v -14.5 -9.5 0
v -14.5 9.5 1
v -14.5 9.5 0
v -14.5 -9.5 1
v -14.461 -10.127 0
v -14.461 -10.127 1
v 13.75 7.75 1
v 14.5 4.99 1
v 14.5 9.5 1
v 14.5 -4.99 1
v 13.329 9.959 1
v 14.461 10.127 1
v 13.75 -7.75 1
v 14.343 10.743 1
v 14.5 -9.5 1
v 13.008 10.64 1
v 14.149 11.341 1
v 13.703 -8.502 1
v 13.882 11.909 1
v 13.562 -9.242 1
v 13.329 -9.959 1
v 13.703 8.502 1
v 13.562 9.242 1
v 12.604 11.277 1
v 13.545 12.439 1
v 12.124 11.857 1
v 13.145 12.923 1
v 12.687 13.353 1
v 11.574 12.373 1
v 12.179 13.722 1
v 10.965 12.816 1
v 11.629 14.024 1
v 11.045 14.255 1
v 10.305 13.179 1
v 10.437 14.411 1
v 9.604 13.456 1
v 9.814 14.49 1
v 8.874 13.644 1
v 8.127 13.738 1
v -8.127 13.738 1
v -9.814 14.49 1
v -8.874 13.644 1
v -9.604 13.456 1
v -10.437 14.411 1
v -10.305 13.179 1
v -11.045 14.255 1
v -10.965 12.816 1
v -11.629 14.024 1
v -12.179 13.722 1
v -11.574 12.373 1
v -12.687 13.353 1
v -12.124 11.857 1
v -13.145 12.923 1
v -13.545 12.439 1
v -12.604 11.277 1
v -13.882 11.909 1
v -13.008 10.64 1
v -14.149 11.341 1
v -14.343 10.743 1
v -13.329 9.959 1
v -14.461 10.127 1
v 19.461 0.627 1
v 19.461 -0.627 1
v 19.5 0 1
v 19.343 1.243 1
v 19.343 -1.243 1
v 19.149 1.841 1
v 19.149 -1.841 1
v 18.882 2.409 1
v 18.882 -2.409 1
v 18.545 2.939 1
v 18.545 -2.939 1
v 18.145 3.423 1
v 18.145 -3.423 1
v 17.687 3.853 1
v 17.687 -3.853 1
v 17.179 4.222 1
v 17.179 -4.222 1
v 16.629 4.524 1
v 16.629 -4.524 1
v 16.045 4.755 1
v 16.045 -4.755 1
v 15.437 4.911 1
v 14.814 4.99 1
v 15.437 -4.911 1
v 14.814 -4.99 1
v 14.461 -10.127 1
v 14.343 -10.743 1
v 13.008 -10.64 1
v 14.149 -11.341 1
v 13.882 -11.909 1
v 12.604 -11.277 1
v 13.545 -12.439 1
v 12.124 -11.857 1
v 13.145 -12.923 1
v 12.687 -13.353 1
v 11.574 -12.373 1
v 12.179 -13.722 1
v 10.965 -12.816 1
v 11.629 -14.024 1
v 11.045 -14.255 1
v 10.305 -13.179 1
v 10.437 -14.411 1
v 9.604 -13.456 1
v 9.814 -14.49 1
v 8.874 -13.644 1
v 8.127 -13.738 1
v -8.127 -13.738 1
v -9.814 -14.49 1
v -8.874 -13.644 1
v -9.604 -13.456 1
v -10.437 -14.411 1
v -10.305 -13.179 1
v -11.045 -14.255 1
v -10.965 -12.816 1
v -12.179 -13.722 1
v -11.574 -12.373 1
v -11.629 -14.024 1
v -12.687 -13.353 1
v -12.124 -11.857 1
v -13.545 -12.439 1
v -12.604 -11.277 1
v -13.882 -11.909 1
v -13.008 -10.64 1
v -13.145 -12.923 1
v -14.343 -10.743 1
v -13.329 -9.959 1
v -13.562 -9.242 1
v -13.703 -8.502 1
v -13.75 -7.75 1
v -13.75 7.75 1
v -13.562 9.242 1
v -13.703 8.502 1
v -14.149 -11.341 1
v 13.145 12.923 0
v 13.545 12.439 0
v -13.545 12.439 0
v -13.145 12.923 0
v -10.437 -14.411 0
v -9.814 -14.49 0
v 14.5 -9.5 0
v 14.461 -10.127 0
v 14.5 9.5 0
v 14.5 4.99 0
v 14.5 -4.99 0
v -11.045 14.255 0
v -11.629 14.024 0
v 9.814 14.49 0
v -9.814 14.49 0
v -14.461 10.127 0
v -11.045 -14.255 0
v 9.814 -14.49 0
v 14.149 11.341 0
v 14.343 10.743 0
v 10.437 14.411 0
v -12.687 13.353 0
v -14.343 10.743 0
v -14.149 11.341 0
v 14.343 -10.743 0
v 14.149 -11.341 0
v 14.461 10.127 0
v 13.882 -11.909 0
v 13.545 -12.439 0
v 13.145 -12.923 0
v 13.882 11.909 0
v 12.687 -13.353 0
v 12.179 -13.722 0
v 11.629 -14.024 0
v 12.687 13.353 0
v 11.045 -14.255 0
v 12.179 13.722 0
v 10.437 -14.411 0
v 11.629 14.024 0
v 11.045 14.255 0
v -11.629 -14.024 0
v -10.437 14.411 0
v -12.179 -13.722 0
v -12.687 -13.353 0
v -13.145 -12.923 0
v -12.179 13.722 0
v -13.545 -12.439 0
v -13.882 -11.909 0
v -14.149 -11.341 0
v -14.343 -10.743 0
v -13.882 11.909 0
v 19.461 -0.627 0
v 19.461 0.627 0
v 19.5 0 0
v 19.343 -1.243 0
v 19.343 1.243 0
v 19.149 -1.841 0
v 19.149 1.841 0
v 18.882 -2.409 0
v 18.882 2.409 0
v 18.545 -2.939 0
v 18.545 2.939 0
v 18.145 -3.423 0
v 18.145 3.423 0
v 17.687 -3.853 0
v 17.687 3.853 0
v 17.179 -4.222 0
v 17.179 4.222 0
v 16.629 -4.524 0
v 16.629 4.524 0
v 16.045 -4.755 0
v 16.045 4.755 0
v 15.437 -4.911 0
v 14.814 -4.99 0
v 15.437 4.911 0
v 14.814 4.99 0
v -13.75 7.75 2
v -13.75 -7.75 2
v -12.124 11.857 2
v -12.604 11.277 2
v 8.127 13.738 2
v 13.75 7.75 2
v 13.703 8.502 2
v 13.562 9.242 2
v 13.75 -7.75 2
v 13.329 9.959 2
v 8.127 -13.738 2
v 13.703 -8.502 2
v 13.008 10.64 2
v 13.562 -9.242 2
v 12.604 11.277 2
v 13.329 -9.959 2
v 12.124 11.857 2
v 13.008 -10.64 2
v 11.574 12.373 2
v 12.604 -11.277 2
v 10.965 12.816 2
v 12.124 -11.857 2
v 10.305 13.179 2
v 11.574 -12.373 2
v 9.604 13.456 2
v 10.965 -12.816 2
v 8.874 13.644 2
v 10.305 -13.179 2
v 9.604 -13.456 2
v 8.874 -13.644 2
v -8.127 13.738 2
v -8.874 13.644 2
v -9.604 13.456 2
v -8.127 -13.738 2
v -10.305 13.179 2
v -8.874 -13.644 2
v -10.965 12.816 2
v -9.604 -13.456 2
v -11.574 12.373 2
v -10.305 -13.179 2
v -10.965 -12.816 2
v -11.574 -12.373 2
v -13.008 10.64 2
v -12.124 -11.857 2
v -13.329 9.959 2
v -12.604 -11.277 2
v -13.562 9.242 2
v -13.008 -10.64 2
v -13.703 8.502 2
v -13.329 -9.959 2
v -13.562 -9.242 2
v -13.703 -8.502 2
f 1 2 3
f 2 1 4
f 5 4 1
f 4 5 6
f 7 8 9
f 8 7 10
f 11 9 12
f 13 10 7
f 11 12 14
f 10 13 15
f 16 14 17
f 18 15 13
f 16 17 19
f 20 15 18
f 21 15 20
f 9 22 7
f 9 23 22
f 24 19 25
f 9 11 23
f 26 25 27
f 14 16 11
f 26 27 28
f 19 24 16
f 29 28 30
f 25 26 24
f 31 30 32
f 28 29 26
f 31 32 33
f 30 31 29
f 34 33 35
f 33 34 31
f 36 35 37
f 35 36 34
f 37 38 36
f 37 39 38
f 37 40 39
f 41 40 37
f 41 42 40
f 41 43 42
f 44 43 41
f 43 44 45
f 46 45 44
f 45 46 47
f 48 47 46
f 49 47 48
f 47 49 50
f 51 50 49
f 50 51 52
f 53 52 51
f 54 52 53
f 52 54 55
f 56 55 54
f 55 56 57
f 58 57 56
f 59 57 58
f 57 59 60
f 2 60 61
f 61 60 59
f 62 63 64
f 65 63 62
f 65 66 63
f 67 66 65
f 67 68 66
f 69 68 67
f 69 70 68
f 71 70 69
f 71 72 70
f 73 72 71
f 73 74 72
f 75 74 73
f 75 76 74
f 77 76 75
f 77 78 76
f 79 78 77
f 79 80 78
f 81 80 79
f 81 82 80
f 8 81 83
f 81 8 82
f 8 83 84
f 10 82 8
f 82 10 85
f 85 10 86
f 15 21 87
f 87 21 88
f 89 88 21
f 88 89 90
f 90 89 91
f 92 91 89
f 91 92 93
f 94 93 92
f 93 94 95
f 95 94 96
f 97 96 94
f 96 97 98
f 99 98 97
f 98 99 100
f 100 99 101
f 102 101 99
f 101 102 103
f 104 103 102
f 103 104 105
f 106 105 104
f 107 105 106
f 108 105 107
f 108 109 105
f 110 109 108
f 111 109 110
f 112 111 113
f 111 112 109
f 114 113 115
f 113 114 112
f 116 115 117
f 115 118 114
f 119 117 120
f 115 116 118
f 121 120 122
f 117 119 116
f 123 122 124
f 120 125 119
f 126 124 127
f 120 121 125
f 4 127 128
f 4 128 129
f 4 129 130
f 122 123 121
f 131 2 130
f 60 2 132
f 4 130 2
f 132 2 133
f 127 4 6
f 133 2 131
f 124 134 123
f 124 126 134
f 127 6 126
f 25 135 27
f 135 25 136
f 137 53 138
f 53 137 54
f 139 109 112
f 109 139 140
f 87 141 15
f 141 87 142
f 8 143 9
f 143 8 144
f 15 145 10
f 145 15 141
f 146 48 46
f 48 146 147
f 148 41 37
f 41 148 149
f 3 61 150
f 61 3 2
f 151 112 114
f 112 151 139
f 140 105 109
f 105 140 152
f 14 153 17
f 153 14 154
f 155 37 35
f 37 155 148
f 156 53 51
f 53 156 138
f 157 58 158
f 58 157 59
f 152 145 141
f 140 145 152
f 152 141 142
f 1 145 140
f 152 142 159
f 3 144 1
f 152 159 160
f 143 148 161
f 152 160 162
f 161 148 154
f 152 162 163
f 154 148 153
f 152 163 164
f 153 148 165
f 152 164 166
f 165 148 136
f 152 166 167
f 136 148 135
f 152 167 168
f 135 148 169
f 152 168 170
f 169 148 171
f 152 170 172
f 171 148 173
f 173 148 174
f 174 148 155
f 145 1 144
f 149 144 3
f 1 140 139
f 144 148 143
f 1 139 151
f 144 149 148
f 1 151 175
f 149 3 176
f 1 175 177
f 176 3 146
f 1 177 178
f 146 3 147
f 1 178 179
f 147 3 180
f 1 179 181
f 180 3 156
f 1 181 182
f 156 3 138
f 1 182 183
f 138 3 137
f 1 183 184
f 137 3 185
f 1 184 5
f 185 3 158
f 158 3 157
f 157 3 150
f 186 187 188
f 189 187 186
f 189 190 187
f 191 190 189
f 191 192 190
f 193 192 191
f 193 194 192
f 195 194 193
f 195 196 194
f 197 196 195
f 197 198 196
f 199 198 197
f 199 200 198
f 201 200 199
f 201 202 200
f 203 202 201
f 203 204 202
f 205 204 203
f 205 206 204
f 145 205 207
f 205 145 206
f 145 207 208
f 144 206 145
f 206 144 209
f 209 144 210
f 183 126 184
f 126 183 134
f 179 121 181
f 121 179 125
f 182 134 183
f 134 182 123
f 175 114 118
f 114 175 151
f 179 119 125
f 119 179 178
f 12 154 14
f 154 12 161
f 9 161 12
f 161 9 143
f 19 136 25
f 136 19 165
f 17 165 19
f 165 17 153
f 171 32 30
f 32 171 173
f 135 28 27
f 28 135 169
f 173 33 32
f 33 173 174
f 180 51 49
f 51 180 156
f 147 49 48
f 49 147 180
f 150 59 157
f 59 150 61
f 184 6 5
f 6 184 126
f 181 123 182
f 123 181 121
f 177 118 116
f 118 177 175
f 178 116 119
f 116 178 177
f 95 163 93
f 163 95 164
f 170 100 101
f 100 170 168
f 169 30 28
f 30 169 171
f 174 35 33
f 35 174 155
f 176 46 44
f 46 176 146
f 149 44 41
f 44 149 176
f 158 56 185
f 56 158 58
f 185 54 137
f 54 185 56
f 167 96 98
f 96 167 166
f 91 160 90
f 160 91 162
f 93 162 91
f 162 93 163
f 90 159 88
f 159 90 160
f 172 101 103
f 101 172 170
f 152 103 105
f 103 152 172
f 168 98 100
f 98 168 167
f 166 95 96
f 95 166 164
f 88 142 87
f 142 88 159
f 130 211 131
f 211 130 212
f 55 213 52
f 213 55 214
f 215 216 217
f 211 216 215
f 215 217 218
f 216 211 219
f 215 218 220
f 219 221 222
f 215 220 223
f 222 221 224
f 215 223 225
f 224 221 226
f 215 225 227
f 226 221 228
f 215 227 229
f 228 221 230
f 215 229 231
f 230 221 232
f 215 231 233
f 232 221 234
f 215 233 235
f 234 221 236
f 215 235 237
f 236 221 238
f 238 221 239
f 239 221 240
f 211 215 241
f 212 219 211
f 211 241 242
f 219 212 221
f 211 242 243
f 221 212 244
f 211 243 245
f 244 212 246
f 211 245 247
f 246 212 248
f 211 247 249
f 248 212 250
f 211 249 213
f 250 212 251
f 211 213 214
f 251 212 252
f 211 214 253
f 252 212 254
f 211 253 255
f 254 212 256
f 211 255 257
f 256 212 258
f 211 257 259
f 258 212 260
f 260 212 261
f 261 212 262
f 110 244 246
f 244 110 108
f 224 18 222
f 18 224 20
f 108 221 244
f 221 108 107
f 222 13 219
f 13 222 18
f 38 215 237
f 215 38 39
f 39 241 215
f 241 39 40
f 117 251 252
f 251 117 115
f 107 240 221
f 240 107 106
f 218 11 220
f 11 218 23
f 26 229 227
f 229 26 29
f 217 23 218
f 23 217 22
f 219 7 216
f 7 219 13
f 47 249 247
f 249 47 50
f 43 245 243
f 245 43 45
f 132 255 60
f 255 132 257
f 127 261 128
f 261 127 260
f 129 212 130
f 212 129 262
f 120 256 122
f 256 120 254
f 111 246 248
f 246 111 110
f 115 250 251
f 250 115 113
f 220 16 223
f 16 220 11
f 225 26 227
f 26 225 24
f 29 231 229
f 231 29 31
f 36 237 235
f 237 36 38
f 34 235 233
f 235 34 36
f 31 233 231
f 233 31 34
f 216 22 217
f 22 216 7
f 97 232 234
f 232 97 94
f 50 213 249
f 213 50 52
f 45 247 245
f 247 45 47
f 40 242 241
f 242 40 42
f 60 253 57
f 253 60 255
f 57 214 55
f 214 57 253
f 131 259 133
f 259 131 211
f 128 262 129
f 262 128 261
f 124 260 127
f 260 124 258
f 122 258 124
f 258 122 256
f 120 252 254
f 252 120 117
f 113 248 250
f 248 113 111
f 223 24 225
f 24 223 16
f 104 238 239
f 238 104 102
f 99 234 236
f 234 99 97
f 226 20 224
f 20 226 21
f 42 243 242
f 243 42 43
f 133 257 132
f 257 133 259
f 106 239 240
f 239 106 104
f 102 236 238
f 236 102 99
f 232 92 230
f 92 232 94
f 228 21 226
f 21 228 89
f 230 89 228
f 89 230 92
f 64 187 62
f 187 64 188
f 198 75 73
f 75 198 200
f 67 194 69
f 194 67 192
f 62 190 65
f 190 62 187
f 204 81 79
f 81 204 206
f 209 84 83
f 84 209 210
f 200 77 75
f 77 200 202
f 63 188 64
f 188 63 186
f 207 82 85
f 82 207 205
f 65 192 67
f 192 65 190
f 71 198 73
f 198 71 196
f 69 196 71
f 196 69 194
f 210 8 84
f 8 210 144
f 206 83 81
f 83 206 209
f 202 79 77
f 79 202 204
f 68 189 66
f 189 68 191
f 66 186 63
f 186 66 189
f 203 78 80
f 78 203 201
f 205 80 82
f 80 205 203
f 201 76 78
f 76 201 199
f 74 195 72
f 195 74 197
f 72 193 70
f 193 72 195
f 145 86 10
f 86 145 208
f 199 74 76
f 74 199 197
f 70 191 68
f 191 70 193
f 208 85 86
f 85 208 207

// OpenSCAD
$fn = 50;


difference() {
	union() {
		translate(v = [0, 0, 0]) {
			rotate(a = [0, 0, 0]) {
				hull() {
					translate(v = [-9.5000000000, 9.5000000000, 0]) {
						rotate(a = [0, 0, 0]) {
							translate(v = [0, 0, 0]) {
								rotate(a = [0, 0, 0]) {
									cylinder(h = 1, r = 5);
								}
							}
						}
					}
					translate(v = [9.5000000000, 9.5000000000, 0]) {
						rotate(a = [0, 0, 0]) {
							translate(v = [0, 0, 0]) {
								rotate(a = [0, 0, 0]) {
									cylinder(h = 1, r = 5);
								}
							}
						}
					}
					translate(v = [-9.5000000000, -9.5000000000, 0]) {
						rotate(a = [0, 0, 0]) {
							translate(v = [0, 0, 0]) {
								rotate(a = [0, 0, 0]) {
									cylinder(h = 1, r = 5);
								}
							}
						}
					}
					translate(v = [9.5000000000, -9.5000000000, 0]) {
						rotate(a = [0, 0, 0]) {
							translate(v = [0, 0, 0]) {
								rotate(a = [0, 0, 0]) {
									cylinder(h = 1, r = 5);
								}
							}
						}
					}
				}
			}
		}
		translate(v = [0, 0, 0]) {
			rotate(a = [0, 0, 0]) {
				hull() {
					translate(v = [-7.7500000000, 7.7500000000, 0]) {
						rotate(a = [0, 0, 0]) {
							translate(v = [0, 0, 0]) {
								rotate(a = [0, 0, 0]) {
									cylinder(h = 2, r = 6);
								}
							}
						}
					}
					translate(v = [7.7500000000, 7.7500000000, 0]) {
						rotate(a = [0, 0, 0]) {
							translate(v = [0, 0, 0]) {
								rotate(a = [0, 0, 0]) {
									cylinder(h = 2, r = 6);
								}
							}
						}
					}
					translate(v = [-7.7500000000, -7.7500000000, 0]) {
						rotate(a = [0, 0, 0]) {
							translate(v = [0, 0, 0]) {
								rotate(a = [0, 0, 0]) {
									cylinder(h = 2, r = 6);
								}
							}
						}
					}
					translate(v = [7.7500000000, -7.7500000000, 0]) {
						rotate(a = [0, 0, 0]) {
							translate(v = [0, 0, 0]) {
								rotate(a = [0, 0, 0]) {
									cylinder(h = 2, r = 6);
								}
							}
						}
					}
				}
			}
		}
		translate(v = [14.5000000000, 0, 0.0000000000]) {
			rotate(a = [0, 0, 0]) {
				cylinder(h = 1, r = 5);
			}
		}
	}
	union();
}
